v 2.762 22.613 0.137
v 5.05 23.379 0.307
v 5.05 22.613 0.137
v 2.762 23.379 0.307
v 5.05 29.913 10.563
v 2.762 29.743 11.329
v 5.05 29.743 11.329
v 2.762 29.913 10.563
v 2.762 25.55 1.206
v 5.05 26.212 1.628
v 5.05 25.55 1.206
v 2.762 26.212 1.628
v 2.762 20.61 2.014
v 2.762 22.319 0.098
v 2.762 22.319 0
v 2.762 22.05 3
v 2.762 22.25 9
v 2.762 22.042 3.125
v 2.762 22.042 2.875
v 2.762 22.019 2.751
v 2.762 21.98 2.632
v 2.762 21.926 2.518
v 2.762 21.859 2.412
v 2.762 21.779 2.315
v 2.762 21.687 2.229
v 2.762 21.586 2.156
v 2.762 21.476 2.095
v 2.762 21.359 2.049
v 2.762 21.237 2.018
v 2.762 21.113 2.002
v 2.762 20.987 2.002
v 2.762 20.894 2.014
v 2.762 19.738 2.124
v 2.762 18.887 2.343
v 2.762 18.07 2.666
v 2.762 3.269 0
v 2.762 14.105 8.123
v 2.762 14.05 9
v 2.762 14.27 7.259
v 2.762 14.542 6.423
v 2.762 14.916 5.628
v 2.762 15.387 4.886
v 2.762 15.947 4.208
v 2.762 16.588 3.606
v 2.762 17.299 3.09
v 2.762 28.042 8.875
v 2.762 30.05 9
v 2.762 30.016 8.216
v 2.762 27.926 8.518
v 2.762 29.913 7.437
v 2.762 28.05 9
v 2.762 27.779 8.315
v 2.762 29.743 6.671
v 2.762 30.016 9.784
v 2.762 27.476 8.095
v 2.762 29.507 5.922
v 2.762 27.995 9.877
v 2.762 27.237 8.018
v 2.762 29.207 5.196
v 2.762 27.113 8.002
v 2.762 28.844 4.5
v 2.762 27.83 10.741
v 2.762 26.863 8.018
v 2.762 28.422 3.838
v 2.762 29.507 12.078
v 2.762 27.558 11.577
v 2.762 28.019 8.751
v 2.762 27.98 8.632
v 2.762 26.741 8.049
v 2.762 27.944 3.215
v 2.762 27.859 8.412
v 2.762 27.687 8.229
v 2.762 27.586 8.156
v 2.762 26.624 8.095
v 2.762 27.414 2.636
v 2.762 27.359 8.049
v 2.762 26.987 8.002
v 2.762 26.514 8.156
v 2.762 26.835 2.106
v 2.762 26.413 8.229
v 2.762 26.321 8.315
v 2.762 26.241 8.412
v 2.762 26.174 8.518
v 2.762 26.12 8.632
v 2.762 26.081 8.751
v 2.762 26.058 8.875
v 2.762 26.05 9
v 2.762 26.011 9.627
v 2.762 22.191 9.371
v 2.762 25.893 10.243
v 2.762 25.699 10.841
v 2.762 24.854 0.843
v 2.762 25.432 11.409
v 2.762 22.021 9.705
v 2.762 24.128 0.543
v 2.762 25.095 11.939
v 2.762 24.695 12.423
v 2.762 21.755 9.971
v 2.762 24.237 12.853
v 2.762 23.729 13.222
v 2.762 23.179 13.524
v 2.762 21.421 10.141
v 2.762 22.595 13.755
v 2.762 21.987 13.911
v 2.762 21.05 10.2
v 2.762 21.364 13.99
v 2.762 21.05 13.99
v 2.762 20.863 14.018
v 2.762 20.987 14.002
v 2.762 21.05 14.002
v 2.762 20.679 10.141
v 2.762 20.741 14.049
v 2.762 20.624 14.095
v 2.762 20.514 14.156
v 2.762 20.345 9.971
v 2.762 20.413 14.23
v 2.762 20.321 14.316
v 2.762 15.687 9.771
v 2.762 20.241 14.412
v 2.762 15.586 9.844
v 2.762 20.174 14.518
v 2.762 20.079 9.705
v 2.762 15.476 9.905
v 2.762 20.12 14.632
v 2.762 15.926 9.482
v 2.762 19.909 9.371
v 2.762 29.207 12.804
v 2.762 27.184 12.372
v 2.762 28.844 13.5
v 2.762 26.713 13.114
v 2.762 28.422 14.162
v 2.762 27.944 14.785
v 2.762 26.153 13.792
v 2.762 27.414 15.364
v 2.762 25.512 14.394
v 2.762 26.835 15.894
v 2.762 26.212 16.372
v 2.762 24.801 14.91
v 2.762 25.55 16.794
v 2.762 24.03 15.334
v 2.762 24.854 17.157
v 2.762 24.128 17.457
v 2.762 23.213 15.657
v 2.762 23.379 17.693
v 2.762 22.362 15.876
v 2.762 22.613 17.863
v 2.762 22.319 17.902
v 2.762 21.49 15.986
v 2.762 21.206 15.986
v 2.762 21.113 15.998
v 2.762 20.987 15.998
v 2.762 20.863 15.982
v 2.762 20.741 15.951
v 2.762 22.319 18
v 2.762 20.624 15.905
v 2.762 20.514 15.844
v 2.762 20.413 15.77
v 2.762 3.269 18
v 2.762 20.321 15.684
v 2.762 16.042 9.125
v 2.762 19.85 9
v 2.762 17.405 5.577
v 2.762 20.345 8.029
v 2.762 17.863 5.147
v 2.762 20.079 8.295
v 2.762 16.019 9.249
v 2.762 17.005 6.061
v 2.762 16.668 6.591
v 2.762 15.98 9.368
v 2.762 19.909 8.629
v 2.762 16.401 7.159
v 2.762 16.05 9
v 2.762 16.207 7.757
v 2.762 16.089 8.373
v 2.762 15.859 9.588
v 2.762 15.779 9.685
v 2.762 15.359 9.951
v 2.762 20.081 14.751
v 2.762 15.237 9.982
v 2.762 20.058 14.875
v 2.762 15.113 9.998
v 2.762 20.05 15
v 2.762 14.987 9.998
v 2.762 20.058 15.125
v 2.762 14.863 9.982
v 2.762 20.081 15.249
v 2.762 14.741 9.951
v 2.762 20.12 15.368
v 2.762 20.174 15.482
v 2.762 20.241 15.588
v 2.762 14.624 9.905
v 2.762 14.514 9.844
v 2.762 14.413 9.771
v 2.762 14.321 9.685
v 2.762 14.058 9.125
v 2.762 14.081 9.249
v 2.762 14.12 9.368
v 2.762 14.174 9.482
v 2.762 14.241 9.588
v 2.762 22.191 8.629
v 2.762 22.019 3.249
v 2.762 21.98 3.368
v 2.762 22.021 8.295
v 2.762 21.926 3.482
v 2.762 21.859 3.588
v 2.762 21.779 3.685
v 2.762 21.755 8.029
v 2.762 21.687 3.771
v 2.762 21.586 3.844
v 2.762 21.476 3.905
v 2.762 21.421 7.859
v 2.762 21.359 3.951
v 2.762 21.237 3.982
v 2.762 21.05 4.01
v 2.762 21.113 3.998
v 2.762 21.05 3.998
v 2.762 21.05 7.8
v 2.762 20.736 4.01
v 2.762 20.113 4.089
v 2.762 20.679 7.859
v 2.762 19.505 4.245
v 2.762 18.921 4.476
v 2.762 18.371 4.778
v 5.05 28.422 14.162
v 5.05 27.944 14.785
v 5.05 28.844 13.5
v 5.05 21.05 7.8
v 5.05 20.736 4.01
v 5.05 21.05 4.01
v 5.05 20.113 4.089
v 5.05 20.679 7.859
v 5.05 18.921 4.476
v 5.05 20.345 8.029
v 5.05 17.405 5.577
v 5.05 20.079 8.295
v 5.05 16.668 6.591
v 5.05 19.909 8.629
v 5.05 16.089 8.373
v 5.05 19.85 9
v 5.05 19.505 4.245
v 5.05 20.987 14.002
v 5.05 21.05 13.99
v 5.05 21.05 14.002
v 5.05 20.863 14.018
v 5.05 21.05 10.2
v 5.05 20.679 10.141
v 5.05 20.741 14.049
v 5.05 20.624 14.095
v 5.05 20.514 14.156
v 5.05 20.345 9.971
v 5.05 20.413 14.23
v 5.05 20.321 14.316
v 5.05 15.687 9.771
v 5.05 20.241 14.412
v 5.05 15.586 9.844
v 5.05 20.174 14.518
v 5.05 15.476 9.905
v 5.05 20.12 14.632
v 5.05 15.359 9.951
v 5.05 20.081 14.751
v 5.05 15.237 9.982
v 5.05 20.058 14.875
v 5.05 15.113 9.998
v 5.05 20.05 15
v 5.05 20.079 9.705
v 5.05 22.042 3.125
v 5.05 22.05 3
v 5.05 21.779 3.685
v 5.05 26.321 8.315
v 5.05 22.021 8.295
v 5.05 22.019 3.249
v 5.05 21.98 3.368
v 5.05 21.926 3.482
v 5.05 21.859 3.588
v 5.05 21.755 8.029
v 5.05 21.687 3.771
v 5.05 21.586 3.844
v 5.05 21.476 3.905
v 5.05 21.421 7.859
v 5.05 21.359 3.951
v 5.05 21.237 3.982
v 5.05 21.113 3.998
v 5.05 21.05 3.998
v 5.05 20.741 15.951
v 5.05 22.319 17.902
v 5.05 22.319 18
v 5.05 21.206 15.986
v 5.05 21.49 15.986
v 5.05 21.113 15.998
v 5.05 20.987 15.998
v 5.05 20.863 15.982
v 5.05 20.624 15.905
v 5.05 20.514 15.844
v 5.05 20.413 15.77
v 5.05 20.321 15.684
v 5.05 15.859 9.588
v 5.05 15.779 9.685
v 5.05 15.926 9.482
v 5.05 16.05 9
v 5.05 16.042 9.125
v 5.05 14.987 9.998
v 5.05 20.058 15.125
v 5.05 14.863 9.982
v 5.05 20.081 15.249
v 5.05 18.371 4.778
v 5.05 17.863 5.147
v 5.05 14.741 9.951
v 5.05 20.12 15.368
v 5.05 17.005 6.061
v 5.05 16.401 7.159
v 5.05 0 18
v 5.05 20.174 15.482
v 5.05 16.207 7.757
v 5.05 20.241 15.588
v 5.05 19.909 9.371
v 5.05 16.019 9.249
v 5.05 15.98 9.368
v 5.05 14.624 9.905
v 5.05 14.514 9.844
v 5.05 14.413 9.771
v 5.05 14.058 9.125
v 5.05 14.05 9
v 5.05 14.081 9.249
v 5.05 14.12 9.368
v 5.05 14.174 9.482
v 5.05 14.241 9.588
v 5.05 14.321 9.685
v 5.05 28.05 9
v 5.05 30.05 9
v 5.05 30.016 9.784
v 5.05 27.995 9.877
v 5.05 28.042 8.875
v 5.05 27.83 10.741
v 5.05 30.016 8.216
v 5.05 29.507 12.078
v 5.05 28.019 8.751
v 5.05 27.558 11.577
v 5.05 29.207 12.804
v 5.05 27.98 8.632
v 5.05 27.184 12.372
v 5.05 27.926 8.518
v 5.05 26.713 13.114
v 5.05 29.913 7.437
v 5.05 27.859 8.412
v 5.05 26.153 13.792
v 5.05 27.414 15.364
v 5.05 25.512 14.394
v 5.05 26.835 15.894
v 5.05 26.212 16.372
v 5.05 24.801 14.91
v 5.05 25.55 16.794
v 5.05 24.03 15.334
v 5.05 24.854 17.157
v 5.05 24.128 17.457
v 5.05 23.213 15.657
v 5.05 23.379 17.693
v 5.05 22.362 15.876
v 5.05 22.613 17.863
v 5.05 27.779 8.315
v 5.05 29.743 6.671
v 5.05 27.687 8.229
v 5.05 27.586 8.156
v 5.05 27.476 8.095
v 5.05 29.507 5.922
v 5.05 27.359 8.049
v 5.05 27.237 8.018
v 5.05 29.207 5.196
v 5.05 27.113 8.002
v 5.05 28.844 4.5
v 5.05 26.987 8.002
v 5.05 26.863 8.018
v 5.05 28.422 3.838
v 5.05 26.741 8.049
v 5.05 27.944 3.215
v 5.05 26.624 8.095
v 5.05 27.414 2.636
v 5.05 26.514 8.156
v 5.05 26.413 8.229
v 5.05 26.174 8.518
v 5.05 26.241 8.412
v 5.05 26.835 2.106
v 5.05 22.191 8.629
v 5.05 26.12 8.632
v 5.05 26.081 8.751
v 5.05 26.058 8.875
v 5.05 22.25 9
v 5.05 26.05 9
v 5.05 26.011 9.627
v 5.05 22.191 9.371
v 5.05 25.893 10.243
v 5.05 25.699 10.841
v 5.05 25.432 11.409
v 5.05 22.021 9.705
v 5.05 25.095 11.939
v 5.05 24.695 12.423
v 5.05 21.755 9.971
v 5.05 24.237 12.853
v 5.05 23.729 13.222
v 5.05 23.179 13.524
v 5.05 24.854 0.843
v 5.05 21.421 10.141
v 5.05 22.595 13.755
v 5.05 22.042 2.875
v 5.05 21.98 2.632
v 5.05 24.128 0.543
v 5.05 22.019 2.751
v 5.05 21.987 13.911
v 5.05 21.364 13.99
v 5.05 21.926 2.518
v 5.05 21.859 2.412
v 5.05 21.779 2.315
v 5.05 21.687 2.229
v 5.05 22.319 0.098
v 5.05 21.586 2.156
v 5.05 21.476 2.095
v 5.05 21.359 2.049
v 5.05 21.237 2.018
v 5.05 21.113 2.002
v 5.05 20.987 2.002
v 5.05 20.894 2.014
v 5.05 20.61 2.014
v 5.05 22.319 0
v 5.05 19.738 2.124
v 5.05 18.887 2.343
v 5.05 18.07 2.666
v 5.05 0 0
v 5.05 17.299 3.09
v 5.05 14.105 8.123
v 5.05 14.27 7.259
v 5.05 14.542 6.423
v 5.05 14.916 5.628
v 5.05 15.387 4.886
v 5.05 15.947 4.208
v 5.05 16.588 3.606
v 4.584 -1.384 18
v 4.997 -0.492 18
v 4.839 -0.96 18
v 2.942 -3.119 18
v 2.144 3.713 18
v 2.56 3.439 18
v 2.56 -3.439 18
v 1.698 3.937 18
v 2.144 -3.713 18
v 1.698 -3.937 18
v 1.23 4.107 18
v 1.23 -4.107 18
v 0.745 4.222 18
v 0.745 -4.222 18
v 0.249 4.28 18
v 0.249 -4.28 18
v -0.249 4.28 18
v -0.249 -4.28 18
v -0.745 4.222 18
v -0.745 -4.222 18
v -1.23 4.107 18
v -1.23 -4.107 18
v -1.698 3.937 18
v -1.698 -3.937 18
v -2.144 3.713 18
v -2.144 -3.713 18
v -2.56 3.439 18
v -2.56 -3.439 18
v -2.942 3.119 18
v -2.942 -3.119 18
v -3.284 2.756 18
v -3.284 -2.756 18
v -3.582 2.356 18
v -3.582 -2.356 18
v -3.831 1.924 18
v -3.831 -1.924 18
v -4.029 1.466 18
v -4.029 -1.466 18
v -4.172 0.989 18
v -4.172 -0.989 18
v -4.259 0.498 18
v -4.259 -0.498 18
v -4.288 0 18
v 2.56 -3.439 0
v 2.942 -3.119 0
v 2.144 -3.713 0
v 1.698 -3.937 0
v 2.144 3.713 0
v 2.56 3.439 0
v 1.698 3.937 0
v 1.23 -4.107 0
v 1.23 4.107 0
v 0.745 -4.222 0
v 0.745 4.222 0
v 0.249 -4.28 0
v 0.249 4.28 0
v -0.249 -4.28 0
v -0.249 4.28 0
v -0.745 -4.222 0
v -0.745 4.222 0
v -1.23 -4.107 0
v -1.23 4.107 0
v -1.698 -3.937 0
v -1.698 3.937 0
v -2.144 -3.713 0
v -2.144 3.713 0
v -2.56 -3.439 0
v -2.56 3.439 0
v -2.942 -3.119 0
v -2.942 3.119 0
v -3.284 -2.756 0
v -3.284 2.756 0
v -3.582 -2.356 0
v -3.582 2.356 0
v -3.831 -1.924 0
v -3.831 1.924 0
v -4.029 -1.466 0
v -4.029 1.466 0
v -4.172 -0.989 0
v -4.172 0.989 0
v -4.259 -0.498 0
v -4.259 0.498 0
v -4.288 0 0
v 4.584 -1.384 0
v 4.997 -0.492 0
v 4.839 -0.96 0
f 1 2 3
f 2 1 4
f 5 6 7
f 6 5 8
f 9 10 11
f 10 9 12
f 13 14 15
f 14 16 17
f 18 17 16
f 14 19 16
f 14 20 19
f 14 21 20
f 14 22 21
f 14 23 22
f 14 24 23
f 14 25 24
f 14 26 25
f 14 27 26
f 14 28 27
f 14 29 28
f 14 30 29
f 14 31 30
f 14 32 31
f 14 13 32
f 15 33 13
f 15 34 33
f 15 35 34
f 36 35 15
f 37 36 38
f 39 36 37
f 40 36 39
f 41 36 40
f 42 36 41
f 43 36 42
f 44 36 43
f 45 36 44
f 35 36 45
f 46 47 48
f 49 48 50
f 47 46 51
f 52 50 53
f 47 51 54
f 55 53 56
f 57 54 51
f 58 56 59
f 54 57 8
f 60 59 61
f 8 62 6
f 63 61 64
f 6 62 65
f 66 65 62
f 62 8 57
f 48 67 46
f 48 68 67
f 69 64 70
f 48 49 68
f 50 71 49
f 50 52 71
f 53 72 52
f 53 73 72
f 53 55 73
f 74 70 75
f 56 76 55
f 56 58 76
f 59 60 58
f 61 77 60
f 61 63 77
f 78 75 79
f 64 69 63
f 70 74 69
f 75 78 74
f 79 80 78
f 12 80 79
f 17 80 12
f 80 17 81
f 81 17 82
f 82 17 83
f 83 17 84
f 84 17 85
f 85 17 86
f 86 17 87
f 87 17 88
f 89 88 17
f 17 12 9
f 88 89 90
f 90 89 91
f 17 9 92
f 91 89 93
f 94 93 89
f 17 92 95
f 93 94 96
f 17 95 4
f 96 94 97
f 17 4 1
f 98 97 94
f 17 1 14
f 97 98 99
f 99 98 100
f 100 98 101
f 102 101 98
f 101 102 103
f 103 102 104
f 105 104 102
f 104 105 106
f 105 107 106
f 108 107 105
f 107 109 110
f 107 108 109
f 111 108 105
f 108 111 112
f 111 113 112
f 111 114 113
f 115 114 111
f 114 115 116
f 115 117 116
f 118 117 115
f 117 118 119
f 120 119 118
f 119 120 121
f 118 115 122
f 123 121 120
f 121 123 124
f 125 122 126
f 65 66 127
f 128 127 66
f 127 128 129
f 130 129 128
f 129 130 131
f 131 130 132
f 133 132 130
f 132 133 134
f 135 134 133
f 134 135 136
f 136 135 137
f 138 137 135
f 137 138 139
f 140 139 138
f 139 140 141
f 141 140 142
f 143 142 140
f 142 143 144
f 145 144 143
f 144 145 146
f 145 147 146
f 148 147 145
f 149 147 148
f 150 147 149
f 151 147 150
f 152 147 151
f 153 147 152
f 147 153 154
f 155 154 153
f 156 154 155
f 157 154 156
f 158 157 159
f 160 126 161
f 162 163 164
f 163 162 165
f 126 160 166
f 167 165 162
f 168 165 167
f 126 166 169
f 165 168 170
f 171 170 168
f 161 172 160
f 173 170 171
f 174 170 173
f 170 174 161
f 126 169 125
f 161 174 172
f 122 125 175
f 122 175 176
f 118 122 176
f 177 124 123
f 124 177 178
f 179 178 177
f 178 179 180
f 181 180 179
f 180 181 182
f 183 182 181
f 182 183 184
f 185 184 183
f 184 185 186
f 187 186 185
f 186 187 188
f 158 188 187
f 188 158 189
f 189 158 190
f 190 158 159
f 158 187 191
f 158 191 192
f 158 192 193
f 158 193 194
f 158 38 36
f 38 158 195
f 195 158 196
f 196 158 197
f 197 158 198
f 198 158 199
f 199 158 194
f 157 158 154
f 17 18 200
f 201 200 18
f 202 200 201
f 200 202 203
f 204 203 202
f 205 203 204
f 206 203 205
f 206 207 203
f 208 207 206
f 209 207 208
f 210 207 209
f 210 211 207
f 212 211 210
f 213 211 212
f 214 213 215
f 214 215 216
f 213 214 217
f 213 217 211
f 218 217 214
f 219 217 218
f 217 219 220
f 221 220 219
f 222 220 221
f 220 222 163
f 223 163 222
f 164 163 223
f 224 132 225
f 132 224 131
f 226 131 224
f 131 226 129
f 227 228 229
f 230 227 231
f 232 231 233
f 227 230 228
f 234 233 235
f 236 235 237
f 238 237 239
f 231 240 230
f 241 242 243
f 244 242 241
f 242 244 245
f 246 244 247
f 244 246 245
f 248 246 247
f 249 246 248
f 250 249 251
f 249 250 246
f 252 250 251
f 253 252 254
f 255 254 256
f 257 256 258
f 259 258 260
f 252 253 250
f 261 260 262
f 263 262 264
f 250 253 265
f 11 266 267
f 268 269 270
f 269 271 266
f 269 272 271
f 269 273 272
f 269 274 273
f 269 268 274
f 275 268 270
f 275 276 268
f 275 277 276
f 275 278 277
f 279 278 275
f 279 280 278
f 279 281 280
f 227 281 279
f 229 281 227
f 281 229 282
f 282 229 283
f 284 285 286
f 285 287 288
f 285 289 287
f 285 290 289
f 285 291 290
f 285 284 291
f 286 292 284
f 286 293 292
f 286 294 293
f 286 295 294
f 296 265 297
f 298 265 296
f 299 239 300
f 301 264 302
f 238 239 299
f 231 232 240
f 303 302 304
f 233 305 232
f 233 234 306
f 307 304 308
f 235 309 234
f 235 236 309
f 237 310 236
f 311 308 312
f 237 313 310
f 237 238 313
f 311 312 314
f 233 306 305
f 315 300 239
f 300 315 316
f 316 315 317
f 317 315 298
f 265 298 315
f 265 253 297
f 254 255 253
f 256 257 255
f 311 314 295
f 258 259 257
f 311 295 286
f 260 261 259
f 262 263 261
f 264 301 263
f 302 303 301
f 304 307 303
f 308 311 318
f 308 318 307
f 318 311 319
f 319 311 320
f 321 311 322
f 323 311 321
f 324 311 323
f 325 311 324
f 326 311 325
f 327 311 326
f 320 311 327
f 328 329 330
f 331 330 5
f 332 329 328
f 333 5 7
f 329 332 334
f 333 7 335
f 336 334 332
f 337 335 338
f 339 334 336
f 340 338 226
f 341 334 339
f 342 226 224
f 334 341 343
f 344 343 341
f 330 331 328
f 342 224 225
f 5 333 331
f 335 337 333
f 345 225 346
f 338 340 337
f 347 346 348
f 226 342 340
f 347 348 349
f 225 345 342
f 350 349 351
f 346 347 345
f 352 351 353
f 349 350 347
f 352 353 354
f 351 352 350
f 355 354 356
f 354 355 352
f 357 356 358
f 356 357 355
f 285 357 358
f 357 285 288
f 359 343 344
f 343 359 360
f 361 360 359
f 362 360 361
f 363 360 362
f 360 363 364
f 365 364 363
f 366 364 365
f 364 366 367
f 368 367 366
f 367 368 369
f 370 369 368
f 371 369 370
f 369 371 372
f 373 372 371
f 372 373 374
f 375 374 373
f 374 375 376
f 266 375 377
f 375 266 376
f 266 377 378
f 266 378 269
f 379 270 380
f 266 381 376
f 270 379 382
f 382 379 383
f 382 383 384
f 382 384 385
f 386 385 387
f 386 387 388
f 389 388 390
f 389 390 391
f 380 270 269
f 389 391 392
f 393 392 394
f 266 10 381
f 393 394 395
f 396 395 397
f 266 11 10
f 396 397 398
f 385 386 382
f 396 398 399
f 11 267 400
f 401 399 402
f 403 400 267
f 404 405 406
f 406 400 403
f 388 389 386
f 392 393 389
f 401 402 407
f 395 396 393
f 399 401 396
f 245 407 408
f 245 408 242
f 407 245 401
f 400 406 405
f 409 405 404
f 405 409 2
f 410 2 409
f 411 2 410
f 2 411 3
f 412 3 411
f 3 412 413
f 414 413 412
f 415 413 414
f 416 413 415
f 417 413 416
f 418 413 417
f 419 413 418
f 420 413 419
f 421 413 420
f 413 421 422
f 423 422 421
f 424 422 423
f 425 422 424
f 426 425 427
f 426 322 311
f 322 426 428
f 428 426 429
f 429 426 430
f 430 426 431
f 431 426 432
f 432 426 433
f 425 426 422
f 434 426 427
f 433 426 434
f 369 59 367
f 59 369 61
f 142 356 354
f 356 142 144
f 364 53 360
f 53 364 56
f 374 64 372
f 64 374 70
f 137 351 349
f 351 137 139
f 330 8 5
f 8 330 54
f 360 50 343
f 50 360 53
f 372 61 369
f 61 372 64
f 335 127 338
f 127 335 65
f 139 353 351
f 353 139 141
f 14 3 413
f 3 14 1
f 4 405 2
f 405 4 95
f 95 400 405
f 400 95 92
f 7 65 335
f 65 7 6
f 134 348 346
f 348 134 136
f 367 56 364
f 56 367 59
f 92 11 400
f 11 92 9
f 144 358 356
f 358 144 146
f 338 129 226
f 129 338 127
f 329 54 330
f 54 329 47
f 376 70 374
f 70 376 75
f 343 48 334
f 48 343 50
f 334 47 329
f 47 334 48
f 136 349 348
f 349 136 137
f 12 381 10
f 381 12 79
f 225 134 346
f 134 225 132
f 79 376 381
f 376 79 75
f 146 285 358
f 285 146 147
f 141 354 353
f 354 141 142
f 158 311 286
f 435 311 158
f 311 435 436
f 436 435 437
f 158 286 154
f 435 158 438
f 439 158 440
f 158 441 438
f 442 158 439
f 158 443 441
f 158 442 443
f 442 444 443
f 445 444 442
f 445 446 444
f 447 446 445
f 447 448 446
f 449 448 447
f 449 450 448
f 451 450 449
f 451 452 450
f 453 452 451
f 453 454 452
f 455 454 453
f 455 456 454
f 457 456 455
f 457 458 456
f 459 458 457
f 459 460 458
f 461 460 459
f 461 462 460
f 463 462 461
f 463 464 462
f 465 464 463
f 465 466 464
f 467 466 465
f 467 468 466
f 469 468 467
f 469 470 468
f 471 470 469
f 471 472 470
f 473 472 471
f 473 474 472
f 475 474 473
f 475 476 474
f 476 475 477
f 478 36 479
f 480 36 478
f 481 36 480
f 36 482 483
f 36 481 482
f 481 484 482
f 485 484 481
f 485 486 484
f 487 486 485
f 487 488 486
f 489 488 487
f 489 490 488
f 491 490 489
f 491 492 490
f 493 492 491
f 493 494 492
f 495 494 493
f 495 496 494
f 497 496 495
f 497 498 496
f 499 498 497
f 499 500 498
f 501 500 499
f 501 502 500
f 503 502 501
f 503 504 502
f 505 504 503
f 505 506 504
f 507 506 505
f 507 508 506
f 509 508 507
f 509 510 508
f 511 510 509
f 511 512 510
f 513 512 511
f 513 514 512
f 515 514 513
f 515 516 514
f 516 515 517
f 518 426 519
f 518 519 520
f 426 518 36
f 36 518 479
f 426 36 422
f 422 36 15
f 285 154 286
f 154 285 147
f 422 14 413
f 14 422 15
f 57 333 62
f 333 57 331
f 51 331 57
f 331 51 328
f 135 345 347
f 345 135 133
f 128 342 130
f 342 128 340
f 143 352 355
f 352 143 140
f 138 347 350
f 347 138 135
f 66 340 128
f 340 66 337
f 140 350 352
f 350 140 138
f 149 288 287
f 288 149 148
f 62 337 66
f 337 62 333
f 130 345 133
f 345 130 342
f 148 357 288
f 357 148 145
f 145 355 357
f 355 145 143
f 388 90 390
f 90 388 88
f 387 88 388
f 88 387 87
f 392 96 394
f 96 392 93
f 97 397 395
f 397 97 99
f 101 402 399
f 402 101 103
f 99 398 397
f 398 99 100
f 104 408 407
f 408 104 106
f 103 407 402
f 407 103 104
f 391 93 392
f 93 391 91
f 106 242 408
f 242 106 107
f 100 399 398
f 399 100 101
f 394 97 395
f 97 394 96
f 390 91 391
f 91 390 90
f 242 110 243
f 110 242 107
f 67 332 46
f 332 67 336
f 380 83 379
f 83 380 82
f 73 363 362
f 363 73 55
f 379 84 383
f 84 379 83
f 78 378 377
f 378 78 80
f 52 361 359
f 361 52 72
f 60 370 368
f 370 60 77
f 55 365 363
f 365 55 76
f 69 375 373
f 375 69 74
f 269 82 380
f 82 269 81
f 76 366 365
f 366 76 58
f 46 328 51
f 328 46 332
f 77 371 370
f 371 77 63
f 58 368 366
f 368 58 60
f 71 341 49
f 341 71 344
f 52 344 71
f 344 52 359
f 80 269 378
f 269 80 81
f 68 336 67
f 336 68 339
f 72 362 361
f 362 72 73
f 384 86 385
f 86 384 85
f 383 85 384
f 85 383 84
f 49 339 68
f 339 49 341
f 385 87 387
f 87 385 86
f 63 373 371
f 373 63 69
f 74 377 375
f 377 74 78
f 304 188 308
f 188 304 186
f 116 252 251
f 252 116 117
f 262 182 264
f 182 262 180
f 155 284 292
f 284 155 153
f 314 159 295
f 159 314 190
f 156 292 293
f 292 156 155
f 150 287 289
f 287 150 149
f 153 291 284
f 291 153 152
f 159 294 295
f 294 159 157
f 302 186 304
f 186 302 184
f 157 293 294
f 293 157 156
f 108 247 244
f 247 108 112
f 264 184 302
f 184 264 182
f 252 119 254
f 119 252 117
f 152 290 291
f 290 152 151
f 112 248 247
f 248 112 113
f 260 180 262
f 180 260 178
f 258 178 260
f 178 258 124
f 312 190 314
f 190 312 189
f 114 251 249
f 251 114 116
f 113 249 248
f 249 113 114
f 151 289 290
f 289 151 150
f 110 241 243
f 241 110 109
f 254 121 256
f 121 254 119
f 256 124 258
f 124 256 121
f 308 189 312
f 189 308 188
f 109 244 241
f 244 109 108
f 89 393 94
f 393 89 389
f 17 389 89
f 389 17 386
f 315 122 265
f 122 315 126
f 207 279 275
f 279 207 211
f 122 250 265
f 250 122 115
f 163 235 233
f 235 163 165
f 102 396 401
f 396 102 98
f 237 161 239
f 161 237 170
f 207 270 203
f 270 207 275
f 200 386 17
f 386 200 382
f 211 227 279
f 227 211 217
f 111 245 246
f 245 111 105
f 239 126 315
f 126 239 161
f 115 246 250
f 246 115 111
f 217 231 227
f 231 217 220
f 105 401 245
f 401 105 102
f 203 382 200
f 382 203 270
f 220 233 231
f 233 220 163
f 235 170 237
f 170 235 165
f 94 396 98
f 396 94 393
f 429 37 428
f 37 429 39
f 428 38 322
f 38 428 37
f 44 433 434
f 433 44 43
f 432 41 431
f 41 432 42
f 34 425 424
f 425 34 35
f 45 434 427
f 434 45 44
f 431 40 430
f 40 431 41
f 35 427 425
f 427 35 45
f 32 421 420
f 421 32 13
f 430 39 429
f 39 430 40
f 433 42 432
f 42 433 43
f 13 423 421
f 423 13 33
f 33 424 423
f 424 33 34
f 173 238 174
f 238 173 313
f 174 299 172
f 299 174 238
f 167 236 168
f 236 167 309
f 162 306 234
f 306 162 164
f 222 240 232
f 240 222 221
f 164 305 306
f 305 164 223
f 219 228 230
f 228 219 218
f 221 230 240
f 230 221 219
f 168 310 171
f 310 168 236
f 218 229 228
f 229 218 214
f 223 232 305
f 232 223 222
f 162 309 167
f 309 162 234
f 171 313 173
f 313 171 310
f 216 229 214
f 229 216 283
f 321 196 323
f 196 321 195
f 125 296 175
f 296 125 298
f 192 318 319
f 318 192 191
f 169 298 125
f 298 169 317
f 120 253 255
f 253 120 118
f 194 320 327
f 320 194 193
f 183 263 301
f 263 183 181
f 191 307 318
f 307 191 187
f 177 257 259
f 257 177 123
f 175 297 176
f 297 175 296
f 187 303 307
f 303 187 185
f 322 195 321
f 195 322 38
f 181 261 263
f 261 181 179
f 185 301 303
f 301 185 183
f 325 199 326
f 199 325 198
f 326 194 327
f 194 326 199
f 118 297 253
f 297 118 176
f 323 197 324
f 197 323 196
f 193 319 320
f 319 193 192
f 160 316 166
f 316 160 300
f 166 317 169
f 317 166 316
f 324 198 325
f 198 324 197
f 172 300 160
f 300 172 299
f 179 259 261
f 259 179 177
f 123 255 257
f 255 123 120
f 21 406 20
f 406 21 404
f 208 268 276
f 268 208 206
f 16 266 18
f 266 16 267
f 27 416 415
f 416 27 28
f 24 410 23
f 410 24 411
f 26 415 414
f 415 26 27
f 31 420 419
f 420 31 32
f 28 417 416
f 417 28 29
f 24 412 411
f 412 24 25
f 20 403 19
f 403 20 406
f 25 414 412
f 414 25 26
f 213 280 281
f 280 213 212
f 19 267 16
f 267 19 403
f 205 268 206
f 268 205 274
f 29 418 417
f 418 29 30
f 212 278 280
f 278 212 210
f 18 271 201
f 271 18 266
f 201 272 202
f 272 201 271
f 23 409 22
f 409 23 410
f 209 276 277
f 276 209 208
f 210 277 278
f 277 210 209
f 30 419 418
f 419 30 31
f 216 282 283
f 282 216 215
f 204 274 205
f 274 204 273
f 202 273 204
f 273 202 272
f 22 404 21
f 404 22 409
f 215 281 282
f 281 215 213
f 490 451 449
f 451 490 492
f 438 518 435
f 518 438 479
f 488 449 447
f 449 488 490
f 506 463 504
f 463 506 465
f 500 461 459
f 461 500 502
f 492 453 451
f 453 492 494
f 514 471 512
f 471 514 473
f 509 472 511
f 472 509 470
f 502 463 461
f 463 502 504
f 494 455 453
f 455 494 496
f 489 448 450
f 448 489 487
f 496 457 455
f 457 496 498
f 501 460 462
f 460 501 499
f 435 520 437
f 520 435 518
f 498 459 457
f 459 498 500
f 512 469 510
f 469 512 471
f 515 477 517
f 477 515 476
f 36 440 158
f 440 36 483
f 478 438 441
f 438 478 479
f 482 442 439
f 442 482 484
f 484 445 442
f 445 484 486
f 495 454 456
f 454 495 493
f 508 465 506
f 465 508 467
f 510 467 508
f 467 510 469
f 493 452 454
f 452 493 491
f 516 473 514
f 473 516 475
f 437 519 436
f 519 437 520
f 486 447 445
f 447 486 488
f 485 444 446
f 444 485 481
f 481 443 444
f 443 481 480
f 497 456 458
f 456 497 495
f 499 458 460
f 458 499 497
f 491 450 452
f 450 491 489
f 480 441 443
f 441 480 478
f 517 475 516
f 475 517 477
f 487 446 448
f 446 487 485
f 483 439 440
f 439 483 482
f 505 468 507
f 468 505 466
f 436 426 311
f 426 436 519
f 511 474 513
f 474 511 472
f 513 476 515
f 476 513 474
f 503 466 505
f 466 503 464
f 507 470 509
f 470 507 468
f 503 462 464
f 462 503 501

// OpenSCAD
// file: fpv_camera_mount.scad
module fpv_camera_mount_arc(depth, screwwidth, radius = 6)
{
	res = $preview ? 10 : 50;
	intersection() {
		outrad = screwwidth / 2 + radius;
		inrad = radius - screwwidth / 2;
		difference() {
			cylinder(depth, r = outrad, $fn = res);
			cylinder(depth, r = inrad, $fn = res);
		}
		arcextend = screwwidth / 2;
		cube([outrad + arcextend, outrad + arcextend, depth]);
	}
	translate([radius, 0, 0]) cylinder(depth, r = screwwidth / 2, $fn = res);
	translate([0, radius, 0]) cylinder(depth, r = screwwidth / 2, $fn = res);
}

module fpv_camera_mount_hole(depth, screwwidth = 2)
{
	res = $preview ? 10 : 20;
	cylinder(depth, r = screwwidth * 1.2 / 2, $fn = res);
}

module fpv_camera_mount(depth, screwwidth = 2)
{
	fpv_camera_mount_full_6mm(depth, screwwidth);
	rotate([0, 0, 160]) fpv_camera_mount_half_9mm(depth, screwwidth);
}

module fpv_camera_mount_full(depth, screwwidth = 2)
{
	fpv_camera_mount_full_6mm(depth, screwwidth);
	fpv_camera_mount_full_9mm(depth, screwwidth);
}

module fpv_camera_mount_half_6mm(depth, screwwidth = 2)
{
	fpv_camera_mount_hole(depth, screwwidth);
	fpv_camera_mount_arc(depth, screwwidth, 6);
}

module fpv_camera_mount_full_6mm(depth, screwwidth = 2)
{
	rotate([0, 0, 90]) fpv_camera_mount_half_6mm(depth, screwwidth);
	rotate([0, 0, 270]) fpv_camera_mount_half_6mm(depth, screwwidth);
}

module fpv_camera_mount_half_9mm(depth, screwwidth = 2)
{
	fpv_camera_mount_hole(depth, screwwidth);
	fpv_camera_mount_arc(depth, screwwidth, 9);
}

module fpv_camera_mount_full_9mm(depth, screwwidth = 2, angle_offset = -20)
{
	rotate([0, 0, angle_offset]) fpv_camera_mount_half_9mm(depth, screwwidth);
	rotate([0, 0, 180 + angle_offset]) fpv_camera_mount_half_9mm(depth, screwwidth);
}
// main file
use <fpv_camera_mount.scad>

anti_warp = .15;
filament_width = 1.75;

function anti_warp_widen(v) = v + (filament_width * anti_warp) * 2;
function anti_warp_shrink(v) = v - (filament_width * anti_warp) * 2;

height = 18;
offset = 16;

standoff_width = anti_warp_widen(5);
standoff_wall_thickness = anti_warp_widen(1);

wall_thickness = standoff_wall_thickness * 1.5;

// END OF CONFIGURATION


$fs = $preview ? 1 : 0.5;
$fa = $preview ? 10 : 5;

module standoff() {
	difference() {
		cylinder(h = height, d = standoff_width + 2 * standoff_wall_thickness);
		cylinder(h = height, d = standoff_width);
	}
}

module main() {
	hull() {
		standoff();
		translate([standoff_width / 2, 0]) cylinder(h = height, d = wall_thickness * 2);
	}
	translate([standoff_width / 2, 0]) {
		difference() {
			union() {
				translate([0, offset + wall_thickness + standoff_width / 2, height / 2]) rotate([0, 90]) {
					difference() {
						cylinder(h = wall_thickness, d = height);
					}
				}
				cube([wall_thickness, offset + wall_thickness * standoff_width / 2, height]);
			}
			translate([0, offset + wall_thickness + standoff_width / 2, height / 2]) rotate([0, 90]) {
				fpv_camera_mount_full_6mm(wall_thickness);
			}
		}
	}
}

main();
